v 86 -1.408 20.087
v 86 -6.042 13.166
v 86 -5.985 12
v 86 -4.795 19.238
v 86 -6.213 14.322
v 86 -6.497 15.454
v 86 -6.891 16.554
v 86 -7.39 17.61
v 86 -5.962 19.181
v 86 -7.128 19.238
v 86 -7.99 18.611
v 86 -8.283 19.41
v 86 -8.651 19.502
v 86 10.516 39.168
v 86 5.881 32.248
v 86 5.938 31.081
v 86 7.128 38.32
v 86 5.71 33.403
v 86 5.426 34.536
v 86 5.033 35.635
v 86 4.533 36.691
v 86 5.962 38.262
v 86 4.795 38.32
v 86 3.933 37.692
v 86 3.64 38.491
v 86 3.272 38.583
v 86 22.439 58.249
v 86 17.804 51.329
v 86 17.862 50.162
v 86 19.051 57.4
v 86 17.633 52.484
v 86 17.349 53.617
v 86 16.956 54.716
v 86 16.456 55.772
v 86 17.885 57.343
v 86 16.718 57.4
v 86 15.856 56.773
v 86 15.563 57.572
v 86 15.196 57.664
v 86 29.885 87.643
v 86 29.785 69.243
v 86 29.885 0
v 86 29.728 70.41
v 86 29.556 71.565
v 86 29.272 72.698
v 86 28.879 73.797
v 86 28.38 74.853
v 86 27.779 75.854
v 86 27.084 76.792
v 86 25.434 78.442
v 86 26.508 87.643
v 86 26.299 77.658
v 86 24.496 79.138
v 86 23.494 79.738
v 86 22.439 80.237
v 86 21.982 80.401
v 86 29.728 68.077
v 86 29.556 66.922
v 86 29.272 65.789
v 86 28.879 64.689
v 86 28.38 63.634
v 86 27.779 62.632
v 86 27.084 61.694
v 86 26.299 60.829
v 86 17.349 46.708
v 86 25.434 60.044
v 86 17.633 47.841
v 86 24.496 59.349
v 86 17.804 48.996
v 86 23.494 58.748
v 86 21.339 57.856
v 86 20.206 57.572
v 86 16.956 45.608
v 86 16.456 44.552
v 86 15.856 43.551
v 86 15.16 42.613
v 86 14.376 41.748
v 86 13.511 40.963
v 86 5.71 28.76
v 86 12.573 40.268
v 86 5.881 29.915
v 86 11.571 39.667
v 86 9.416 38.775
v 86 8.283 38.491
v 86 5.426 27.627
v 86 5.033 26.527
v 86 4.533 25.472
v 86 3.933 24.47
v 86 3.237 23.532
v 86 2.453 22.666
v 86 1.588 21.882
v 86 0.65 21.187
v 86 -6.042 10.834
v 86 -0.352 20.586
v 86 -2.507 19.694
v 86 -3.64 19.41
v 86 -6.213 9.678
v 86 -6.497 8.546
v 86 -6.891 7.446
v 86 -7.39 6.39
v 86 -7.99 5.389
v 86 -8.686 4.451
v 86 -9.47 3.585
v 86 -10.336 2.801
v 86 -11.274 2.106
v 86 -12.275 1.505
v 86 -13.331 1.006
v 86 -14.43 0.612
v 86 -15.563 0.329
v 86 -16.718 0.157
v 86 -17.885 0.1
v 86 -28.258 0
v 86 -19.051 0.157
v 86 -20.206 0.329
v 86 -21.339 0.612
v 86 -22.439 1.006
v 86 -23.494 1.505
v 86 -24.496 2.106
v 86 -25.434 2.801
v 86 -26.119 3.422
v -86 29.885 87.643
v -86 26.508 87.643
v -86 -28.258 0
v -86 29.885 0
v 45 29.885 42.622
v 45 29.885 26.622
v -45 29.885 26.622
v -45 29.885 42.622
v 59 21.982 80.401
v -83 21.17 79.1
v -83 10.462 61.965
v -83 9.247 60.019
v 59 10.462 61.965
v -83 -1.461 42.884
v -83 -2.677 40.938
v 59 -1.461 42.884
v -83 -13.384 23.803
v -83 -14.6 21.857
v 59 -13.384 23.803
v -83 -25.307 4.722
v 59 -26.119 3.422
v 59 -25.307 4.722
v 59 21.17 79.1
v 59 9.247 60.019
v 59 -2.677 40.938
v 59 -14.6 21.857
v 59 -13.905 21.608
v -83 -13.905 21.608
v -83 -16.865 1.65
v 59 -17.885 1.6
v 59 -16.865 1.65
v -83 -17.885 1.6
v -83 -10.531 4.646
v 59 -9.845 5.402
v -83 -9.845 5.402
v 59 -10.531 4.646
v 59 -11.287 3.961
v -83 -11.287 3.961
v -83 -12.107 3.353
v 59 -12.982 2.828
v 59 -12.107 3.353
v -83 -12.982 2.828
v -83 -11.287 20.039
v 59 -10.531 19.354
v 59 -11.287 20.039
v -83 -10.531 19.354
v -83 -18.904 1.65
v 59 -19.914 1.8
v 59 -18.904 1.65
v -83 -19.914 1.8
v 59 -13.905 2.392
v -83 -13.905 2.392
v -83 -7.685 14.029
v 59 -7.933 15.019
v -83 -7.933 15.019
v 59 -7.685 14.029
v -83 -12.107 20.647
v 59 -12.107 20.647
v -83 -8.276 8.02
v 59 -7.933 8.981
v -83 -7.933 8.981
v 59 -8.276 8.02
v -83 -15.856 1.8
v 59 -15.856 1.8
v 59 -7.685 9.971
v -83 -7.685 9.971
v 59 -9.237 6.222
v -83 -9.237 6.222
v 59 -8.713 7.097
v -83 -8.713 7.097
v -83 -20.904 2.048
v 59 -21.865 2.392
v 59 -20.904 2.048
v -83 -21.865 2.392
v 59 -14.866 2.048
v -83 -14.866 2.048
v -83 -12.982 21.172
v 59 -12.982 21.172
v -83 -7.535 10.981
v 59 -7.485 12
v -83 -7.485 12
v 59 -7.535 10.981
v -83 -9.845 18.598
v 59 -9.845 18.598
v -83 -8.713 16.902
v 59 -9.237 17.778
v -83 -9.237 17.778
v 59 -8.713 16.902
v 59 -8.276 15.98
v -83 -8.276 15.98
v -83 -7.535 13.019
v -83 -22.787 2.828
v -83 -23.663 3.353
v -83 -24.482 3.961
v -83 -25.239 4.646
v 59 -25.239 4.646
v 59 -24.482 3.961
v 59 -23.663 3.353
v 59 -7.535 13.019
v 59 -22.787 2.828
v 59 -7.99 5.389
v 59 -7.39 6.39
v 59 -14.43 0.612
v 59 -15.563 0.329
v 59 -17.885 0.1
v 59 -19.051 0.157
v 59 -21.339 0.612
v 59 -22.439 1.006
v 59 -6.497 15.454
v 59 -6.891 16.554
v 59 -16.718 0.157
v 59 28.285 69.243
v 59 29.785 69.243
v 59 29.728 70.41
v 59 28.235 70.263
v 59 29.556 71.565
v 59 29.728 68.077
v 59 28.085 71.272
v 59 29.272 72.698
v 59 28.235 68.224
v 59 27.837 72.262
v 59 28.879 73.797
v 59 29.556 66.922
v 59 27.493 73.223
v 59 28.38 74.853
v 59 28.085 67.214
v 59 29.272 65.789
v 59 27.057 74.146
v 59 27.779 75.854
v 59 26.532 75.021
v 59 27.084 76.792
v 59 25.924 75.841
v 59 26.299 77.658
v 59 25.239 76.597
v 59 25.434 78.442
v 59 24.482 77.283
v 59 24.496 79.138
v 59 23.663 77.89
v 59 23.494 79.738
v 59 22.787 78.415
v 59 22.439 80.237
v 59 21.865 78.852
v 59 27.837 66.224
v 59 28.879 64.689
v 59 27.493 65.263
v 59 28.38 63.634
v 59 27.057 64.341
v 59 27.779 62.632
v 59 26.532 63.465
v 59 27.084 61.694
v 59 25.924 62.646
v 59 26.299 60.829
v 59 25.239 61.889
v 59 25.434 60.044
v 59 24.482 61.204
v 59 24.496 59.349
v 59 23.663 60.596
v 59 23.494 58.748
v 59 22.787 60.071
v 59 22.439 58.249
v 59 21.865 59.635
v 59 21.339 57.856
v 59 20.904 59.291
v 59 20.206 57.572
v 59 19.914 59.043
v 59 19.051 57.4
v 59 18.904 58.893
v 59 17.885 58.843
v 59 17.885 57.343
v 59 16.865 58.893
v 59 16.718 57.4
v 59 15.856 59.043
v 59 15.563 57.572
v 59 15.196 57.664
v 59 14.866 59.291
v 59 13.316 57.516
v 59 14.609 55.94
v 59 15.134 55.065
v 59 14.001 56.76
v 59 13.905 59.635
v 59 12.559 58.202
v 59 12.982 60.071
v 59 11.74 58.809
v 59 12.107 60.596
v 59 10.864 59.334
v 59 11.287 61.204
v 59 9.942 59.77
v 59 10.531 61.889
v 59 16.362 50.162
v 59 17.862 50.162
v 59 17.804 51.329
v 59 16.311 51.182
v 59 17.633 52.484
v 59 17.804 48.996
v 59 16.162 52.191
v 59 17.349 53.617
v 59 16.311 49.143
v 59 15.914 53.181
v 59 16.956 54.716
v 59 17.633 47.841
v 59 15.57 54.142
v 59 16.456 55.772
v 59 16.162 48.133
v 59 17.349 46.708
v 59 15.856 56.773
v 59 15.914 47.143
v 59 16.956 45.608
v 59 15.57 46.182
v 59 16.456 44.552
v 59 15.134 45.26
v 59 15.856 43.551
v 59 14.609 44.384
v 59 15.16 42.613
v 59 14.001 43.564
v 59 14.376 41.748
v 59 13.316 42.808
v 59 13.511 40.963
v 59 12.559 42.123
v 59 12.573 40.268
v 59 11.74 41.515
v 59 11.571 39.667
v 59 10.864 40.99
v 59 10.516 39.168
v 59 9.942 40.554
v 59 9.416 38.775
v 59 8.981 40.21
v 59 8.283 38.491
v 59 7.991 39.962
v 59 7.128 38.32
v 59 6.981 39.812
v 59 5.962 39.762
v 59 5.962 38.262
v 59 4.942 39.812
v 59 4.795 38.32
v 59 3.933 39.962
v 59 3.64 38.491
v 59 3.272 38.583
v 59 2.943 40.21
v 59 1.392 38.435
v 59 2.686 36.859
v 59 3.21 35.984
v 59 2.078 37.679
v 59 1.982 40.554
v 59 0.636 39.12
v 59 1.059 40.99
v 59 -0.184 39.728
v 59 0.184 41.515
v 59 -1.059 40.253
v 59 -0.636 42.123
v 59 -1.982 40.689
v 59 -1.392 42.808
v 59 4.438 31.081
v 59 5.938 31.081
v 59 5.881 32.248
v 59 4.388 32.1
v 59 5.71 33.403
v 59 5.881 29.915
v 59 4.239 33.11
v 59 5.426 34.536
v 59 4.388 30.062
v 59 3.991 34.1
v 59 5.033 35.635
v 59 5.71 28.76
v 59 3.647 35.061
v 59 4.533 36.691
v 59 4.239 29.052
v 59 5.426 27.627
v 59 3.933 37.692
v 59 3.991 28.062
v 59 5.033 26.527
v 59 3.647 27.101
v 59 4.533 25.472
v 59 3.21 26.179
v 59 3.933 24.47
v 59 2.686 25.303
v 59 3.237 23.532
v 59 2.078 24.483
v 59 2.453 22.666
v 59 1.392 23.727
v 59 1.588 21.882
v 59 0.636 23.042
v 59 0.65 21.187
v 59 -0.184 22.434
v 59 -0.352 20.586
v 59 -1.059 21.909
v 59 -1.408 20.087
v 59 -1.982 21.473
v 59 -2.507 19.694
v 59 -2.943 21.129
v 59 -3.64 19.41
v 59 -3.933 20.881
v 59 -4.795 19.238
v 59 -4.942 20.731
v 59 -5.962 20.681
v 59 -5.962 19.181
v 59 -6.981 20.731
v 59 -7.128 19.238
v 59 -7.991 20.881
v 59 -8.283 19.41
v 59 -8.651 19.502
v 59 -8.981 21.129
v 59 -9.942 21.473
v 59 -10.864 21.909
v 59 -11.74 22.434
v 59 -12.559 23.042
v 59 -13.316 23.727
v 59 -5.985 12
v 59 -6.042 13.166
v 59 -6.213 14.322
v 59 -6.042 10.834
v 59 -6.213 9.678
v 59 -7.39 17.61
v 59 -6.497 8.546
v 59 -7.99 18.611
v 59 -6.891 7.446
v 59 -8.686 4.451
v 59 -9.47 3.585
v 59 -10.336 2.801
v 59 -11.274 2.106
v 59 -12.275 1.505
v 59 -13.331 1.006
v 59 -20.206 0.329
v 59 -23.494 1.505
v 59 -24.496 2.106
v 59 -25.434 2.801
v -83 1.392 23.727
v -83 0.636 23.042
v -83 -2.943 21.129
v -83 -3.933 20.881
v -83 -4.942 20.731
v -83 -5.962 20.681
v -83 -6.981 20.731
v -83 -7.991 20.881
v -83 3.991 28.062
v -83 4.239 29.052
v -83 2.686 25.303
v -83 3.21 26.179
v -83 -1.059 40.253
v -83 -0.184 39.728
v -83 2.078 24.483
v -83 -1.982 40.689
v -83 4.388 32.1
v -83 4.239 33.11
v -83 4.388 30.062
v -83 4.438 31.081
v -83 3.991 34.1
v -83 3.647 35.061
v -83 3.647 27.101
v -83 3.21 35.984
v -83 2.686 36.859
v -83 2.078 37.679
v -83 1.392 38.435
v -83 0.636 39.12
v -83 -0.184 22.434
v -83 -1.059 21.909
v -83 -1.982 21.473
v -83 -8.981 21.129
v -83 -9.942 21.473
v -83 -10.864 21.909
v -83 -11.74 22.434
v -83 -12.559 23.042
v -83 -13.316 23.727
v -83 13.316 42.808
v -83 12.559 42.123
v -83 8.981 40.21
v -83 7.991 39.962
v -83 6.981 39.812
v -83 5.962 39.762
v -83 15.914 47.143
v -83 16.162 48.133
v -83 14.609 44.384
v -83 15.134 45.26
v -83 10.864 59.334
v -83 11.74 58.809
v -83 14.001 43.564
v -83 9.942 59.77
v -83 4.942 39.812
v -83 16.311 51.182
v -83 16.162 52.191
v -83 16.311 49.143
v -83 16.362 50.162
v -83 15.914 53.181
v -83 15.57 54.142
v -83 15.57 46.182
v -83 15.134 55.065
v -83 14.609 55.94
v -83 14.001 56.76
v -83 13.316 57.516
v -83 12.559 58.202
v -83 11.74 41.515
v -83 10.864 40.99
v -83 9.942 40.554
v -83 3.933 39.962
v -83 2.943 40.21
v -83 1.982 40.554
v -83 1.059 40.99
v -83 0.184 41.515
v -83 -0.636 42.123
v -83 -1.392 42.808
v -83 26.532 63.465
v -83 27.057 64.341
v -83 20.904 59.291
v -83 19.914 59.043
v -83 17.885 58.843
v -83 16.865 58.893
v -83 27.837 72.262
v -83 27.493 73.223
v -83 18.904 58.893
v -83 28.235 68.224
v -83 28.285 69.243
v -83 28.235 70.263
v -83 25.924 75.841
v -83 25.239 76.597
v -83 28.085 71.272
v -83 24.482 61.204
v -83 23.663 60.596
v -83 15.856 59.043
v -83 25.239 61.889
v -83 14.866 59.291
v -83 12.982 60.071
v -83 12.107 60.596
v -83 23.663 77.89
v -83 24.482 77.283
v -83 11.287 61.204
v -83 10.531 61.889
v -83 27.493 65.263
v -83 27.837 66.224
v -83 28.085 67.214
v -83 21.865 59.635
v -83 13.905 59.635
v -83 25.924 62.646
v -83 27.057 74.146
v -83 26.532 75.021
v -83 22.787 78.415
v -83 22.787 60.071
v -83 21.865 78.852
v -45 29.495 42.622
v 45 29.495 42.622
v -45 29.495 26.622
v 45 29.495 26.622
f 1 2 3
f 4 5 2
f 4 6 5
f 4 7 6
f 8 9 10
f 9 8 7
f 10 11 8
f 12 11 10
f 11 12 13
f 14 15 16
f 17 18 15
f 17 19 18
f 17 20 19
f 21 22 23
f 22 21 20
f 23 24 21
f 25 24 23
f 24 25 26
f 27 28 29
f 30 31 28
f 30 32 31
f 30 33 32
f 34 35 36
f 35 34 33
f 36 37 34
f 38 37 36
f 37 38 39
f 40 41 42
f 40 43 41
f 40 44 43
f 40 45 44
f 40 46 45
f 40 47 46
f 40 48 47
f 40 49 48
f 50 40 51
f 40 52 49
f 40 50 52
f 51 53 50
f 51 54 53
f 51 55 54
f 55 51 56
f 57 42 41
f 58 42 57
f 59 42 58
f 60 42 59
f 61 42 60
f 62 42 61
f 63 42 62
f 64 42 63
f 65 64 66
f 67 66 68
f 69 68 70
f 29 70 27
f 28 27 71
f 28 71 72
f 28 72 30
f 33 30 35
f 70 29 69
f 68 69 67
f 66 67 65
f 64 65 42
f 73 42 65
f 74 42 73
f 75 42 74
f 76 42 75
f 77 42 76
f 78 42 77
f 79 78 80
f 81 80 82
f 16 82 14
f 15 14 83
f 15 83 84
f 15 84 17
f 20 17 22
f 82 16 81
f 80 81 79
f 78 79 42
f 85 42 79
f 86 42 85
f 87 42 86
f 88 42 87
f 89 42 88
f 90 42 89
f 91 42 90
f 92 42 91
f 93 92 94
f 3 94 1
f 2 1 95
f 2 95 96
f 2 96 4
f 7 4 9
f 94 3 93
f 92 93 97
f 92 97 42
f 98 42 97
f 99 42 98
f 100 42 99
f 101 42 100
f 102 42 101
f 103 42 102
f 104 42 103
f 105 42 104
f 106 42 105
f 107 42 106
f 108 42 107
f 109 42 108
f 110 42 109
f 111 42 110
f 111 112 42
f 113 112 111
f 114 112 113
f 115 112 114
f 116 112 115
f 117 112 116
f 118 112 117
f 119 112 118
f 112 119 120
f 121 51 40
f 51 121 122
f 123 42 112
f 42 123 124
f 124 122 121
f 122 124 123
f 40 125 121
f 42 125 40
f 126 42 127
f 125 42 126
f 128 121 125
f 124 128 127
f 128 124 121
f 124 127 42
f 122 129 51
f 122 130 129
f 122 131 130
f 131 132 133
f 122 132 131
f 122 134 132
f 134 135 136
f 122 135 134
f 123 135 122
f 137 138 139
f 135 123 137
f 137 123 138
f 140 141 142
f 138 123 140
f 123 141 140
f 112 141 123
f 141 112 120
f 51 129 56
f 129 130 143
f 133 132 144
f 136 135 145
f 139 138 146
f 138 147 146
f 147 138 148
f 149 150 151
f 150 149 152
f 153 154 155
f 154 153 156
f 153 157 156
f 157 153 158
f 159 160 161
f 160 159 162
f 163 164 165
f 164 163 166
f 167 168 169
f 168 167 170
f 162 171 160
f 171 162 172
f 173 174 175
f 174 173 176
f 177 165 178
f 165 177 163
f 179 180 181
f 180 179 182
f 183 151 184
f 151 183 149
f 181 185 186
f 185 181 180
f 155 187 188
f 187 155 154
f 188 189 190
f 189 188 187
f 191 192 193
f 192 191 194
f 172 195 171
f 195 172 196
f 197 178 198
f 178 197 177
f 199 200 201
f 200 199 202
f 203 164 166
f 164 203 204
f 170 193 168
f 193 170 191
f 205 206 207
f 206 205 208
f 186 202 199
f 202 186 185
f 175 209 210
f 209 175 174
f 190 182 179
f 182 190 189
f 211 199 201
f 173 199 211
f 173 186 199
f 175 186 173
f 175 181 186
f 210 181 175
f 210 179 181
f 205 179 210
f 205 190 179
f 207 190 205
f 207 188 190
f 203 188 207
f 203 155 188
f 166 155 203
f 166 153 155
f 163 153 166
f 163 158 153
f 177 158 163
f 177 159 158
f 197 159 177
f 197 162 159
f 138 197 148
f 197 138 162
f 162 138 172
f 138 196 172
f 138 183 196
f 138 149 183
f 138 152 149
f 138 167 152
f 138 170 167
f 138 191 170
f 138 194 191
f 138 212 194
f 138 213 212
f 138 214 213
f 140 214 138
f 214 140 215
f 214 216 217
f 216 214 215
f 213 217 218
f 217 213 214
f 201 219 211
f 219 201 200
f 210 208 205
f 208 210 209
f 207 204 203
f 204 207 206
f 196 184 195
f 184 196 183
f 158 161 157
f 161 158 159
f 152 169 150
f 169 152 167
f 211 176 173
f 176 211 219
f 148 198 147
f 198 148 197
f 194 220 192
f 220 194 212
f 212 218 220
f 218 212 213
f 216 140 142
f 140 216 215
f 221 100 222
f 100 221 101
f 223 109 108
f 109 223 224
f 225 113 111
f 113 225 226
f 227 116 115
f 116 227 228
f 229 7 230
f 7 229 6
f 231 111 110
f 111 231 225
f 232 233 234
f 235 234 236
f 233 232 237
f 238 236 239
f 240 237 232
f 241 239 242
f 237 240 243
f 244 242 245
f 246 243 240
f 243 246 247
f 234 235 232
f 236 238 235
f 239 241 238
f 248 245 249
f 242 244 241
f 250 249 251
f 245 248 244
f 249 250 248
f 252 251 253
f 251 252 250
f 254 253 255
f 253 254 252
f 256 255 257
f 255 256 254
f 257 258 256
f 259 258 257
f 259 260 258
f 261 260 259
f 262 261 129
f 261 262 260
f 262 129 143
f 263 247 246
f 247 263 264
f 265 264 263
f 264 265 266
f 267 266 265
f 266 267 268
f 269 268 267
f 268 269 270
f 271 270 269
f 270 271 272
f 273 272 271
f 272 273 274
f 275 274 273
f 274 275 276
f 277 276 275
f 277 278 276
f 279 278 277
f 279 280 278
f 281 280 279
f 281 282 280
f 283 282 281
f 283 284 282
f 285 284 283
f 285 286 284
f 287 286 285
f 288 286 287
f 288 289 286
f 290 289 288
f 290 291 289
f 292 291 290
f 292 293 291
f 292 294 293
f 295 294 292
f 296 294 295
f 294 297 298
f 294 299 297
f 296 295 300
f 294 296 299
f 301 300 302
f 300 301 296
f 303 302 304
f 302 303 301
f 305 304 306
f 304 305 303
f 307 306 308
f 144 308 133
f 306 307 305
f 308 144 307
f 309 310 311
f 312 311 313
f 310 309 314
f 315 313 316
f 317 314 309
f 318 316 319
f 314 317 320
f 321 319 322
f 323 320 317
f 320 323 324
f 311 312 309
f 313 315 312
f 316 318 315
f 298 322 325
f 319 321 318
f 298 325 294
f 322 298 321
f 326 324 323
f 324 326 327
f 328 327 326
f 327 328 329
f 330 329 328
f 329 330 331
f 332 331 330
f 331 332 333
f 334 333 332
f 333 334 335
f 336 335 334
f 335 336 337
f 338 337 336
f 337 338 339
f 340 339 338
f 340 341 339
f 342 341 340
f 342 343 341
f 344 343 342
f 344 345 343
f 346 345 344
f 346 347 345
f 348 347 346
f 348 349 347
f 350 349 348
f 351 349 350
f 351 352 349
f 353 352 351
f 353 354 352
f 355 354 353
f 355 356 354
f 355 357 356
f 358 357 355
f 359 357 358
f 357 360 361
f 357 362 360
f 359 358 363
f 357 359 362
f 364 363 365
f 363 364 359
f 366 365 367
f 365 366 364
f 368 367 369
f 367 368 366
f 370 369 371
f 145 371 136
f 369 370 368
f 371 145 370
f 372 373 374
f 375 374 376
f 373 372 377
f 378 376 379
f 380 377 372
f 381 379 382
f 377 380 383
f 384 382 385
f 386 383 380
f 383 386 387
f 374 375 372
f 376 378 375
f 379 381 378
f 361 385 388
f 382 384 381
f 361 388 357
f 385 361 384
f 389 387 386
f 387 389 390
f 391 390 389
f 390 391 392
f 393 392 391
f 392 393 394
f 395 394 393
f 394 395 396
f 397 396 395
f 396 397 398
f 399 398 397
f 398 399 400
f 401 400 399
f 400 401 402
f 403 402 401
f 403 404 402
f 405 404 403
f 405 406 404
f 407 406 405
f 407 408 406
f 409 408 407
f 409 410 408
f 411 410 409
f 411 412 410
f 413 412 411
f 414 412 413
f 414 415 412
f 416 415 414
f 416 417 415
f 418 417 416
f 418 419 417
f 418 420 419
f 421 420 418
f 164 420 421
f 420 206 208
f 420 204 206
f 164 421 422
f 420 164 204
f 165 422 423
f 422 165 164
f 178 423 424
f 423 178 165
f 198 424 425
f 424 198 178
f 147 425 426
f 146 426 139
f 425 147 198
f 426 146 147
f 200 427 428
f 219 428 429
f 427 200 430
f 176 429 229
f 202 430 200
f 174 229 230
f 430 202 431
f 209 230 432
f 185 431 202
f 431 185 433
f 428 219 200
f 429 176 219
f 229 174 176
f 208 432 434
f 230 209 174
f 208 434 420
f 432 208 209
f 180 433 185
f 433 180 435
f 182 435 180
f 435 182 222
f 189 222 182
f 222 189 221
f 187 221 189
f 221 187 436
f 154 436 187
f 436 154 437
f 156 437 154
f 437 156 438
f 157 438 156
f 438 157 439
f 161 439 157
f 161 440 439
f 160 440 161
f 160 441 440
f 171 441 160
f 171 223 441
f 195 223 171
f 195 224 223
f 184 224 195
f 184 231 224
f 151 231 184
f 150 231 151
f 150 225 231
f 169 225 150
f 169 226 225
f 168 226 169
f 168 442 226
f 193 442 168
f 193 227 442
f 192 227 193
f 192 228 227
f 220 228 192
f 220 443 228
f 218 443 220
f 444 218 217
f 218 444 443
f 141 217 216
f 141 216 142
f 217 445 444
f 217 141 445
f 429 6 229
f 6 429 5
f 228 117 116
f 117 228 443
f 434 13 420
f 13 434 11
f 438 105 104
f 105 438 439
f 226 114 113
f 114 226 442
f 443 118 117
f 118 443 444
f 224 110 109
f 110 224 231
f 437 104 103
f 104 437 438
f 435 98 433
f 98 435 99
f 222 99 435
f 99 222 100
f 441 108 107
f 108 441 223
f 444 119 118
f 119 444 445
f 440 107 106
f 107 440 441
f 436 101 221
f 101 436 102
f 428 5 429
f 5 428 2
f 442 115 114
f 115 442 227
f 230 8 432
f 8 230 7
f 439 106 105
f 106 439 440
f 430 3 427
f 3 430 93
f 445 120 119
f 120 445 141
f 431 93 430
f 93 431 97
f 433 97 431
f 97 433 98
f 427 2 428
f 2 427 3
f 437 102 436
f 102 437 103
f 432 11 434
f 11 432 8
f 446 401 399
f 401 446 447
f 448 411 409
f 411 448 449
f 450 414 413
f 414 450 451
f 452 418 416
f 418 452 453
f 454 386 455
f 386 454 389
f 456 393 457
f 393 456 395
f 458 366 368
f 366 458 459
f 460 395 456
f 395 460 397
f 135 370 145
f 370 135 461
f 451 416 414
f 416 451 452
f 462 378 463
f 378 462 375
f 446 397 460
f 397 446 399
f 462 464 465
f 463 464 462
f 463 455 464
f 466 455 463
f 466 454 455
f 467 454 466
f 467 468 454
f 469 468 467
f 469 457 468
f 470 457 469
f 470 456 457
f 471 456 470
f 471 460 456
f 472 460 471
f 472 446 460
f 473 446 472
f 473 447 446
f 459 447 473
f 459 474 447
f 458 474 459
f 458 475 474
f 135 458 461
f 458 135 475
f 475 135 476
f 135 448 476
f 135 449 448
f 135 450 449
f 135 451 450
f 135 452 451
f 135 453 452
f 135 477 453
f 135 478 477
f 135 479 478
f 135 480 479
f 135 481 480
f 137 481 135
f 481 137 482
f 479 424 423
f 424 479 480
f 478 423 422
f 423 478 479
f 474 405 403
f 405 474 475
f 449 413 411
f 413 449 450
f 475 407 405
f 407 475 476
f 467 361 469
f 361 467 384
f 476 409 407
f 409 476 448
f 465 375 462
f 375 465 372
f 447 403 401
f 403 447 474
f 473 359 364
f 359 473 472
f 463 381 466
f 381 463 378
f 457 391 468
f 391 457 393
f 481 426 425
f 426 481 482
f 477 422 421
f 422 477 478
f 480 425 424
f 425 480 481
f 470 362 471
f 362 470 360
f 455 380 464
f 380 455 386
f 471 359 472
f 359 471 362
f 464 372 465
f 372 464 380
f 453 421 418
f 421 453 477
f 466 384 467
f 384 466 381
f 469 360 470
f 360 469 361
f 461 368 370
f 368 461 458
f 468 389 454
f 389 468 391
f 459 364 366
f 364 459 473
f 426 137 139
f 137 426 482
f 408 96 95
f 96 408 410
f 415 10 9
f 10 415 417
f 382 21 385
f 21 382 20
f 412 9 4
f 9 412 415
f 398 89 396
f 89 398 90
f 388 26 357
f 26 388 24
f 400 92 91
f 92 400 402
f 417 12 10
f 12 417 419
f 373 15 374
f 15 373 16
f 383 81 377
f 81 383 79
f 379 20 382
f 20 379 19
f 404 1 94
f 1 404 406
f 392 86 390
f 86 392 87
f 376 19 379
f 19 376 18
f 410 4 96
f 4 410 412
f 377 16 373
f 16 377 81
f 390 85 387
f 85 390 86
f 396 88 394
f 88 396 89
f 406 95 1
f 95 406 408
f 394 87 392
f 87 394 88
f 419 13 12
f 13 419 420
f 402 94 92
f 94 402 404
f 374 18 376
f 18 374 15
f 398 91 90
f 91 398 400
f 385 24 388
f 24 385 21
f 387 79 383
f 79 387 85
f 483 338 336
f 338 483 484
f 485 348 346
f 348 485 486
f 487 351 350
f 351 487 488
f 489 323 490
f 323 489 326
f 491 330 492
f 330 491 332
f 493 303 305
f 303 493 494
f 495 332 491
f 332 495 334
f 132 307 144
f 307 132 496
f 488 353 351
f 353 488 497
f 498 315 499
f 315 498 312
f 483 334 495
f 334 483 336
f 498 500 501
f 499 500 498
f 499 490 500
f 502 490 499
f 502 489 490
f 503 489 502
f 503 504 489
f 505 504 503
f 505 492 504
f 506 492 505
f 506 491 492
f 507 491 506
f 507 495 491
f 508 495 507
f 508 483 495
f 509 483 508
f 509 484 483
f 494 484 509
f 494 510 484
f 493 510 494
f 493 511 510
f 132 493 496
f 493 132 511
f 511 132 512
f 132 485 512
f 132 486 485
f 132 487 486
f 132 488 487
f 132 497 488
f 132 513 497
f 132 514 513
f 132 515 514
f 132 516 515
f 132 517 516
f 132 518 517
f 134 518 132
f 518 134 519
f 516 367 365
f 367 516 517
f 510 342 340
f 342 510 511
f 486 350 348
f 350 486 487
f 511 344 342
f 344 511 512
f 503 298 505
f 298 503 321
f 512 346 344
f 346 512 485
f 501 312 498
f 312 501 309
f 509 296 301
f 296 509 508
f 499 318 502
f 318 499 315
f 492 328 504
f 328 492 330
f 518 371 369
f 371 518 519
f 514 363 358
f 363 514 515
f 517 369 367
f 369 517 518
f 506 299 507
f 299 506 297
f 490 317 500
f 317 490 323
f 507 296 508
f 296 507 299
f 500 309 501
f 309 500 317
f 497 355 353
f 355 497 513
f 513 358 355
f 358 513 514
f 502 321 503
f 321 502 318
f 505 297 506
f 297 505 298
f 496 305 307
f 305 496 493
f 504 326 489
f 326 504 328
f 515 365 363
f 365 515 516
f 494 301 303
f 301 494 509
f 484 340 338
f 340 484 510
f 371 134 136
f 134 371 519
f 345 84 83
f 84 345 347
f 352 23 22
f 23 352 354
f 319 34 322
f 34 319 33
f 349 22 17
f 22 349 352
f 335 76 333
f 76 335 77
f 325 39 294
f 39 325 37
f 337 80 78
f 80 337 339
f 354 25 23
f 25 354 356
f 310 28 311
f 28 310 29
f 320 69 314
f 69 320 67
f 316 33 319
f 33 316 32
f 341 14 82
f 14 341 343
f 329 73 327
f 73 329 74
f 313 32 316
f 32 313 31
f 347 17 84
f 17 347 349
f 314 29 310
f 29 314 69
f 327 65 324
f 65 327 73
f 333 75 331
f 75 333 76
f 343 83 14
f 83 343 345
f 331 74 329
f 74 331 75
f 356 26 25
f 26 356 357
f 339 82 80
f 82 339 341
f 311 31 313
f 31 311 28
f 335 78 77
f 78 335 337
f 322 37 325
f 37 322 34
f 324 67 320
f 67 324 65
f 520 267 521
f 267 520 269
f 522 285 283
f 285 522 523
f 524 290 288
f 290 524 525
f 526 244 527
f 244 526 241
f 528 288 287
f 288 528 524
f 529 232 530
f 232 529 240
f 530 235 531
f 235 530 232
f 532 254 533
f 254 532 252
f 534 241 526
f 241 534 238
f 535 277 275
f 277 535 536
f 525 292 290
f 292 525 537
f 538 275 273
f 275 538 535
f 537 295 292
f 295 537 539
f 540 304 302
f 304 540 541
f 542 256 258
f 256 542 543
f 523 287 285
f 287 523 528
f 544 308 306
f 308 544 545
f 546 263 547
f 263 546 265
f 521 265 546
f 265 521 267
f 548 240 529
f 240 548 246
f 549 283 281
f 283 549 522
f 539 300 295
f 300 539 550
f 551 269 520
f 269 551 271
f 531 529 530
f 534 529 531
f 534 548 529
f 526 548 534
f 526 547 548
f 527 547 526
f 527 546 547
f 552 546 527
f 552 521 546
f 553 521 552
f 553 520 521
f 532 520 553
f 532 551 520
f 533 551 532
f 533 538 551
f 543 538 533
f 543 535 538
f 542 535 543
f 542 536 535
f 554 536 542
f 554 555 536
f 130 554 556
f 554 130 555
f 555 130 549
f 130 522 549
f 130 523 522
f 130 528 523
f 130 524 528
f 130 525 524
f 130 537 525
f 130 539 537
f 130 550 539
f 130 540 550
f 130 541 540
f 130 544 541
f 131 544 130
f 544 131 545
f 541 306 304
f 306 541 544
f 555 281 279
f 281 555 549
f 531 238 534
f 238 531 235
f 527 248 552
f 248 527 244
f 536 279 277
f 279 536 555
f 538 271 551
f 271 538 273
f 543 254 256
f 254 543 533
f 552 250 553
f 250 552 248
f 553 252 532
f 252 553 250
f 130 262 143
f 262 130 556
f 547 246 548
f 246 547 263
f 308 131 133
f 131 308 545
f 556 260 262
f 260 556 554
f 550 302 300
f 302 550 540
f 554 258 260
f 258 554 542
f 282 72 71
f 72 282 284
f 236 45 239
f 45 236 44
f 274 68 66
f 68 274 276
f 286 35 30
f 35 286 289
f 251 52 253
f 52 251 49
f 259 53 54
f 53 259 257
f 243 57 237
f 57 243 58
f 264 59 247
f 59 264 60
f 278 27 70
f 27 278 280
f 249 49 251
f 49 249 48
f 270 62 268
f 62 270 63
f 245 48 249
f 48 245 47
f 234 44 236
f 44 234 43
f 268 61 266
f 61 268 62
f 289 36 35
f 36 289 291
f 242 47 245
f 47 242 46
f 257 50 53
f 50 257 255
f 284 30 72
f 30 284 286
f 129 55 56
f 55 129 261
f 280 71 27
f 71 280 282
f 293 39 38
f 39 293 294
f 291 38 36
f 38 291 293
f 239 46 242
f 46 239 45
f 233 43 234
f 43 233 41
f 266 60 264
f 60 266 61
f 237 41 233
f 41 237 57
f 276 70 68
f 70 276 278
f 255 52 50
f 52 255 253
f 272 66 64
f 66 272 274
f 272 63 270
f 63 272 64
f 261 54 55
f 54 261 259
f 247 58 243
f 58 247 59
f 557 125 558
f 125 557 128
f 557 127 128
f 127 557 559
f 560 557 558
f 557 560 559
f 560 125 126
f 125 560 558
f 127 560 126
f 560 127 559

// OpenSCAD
// file: common.scad
// ============================================================
// common.scad — shared parameters + modules for all designs
// LOCKED PEN SPECIFICATION (do not change)
// ============================================================
PEN_L = 165;      // pen length (mm)
PEN_A = 17;       // pen cross-section minor
PEN_B = 20;       // pen cross-section major (used as diameter envelope)
CLEAR = 0.4;      // fit clearance
WALL  = 1.6;      // minimum wall thickness

$fn = 64;

RCH = PEN_B/2 + CLEAR;   // = 10.4  channel radius
EPS = 0.01;

// --- open-top U trough cut, axis along X, centered at local origin -----------
// Removes a lower half-cylinder of radius r plus a full-width vertical slot
// upward, so the channel is open at the top (no ceiling -> no overhang).
module trough_cut(len, r=RCH, top=80) {
    union() {
        rotate([0,90,0]) cylinder(h=len, r=r, center=true);
        translate([0,0,top/2]) cube([len, 2*r, top], center=true); // slot upward
    }
}

// --- teardrop hole, axis along X, centered at local origin --------------------
// 45-degree self-supporting apex pointing +Z so a horizontal bore can print
// without support.
module teardrop_cut(len, r=RCH) {
    rotate([0,90,0])
        linear_extrude(height=len, center=true)
            union() {
                circle(r=r);
                polygon([[ 0.7071*r, 0.7071*r],
                         [ 0,         1.4142*r],
                         [-0.7071*r,  0.7071*r]]);
            }
}

// --- dial relief: widened open-top pocket at one channel end -----------------
// place at the +X or -X end of a channel so the dose dial clears / can be turned
module dial_relief(end_x, r=RCH+2.2, len=28, top=80) {
    translate([end_x, 0, 0]) trough_cut(len, r, top);
}
// file: rack_lib.scad
// rack_lib.scad — parametric reclined "toast-rack" for horizontal pens
// One module, driven by params, so each design iteration is an attributable
// change. Pens load from the top-front long face (radially into each groove);
// the ramp faces up so it prints support-free.
include <common.scad>

LBLK = PEN_L + 7;   // 172  overall body length (< 177.8), leaves end walls

// n       : number of pens
// phi     : ramp angle from horizontal (deg) — steeper = narrower + more top-load
// P       : along-ramp center spacing (>= 22.4 so pens don't intersect)
// lip     : grooves cut this far below the ramp plane -> snap-retention lip
// rr      : dial-relief radius (wider mouth at +X end)
// rlen    : dial-relief length along X
// endwall : solid wall thickness left at each end of a groove (containment)
// scoop   : add a thumb-scallop at the +X mouth for easy pen removal
// plate   : recess a nameplate/label pocket into the flat back face
// vials   : number of vertical vial wells bored into the back-top shelf (0 = none)
// flex     : number of relief gaps cut across each lip -> short spring-fingers
//            that flex outward, so a rigid pen snaps in with low force
module rack(n=4, phi=58, P=22.5, lip=2.5, rr=RCH+1.5, rlen=30,
            endwall=3, scoop=false, plate=false, vials=0, flex=0) {
    cph = cos(phi);
    sph = sin(phi);
    yc  = [for (i=[0:n-1]) (-(n-1)/2 + i) * P * cph];
    zc  = [for (i=[0:n-1]) (RCH + WALL) + i * P * sph];

    ymin = yc[0]   - RCH - WALL;
    ymax = yc[n-1] + RCH + WALL;
    Wb   = ymax - ymin;
    ycen = (ymax + ymin) / 2;
    Hbox = zc[n-1] + RCH + (vials > 0 ? 16 : 8);   // extra back-top stock for wells
    glen = LBLK - 2 * endwall;
    relief_cx = LBLK/2 - rlen/2 + 3;               // pokes ~3 past +X face
    big = 800;

    difference() {
        // ---- solid wedge: box with its top sheared off along the ramp plane ----
        difference() {
            translate([0, ycen, Hbox/2]) cube([LBLK, Wb, Hbox], center=true);
            translate([0, yc[0], zc[0] + lip])
                rotate([phi, 0, 0])
                    translate([0, 0, big/2]) cube([LBLK + 2, big, big], center=true);
        }

        // ---- grooves + dial relief (+ optional thumb scoop) ----
        for (i = [0:n-1]) {
            translate([0, yc[i], zc[i]])                       // main groove
                rotate([0,90,0]) cylinder(h=glen, r=RCH, center=true);
            translate([relief_cx, yc[i], zc[i]])               // dial relief mouth
                rotate([0,90,0]) cylinder(h=rlen, r=rr, center=true);
            if (scoop)
                translate([LBLK/2, yc[i] - 0.30*RCH, zc[i]]) sphere(r=7.5);
            // flex-relief gaps: notch the lip (above centerline) at intervals
            if (flex > 0)
                for (k = [1:flex])
                    translate([-LBLK/2 + k*LBLK/(flex+1), yc[i], zc[i] + RCH])
                        cube([3, 2*RCH + 6, 2*RCH], center=true);
        }

        // ---- optional vertical vial wells in the back-top shelf ----
        if (vials > 0) {
            wy = ymax - 9;                                     // along the back edge
            for (k = [0:vials-1]) {
                wx = -((vials-1)/2)*44 + k*44;
                translate([wx, wy, Hbox - 22 + EPS])
                    cylinder(h = 22, d = 14);
            }
        }

        // ---- optional nameplate recess in the flat back face ----
        if (plate)
            translate([0, ymax + EPS, zc[n-1]*0.5])
                rotate([90,0,0]) translate([0,0,-0.8])
                    linear_extrude(1.2) square([90, 16], center=true);
    }
}
// main file
// Iter6 — RETENTION FIX: snap-fit C-grooves. Grooves cut 4.6mm below the ramp
// so each wraps >180deg around the pen (opening ~18.5mm < 20mm pen). The pen
// clips in past the lips and is positively captured -> will not fall out the
// front. 58deg balance, thumb scoops, back nameplate.
include <rack_lib.scad>
rack(n=4, phi=58, P=22.5, lip=4.6, endwall=3, scoop=true, plate=true);
